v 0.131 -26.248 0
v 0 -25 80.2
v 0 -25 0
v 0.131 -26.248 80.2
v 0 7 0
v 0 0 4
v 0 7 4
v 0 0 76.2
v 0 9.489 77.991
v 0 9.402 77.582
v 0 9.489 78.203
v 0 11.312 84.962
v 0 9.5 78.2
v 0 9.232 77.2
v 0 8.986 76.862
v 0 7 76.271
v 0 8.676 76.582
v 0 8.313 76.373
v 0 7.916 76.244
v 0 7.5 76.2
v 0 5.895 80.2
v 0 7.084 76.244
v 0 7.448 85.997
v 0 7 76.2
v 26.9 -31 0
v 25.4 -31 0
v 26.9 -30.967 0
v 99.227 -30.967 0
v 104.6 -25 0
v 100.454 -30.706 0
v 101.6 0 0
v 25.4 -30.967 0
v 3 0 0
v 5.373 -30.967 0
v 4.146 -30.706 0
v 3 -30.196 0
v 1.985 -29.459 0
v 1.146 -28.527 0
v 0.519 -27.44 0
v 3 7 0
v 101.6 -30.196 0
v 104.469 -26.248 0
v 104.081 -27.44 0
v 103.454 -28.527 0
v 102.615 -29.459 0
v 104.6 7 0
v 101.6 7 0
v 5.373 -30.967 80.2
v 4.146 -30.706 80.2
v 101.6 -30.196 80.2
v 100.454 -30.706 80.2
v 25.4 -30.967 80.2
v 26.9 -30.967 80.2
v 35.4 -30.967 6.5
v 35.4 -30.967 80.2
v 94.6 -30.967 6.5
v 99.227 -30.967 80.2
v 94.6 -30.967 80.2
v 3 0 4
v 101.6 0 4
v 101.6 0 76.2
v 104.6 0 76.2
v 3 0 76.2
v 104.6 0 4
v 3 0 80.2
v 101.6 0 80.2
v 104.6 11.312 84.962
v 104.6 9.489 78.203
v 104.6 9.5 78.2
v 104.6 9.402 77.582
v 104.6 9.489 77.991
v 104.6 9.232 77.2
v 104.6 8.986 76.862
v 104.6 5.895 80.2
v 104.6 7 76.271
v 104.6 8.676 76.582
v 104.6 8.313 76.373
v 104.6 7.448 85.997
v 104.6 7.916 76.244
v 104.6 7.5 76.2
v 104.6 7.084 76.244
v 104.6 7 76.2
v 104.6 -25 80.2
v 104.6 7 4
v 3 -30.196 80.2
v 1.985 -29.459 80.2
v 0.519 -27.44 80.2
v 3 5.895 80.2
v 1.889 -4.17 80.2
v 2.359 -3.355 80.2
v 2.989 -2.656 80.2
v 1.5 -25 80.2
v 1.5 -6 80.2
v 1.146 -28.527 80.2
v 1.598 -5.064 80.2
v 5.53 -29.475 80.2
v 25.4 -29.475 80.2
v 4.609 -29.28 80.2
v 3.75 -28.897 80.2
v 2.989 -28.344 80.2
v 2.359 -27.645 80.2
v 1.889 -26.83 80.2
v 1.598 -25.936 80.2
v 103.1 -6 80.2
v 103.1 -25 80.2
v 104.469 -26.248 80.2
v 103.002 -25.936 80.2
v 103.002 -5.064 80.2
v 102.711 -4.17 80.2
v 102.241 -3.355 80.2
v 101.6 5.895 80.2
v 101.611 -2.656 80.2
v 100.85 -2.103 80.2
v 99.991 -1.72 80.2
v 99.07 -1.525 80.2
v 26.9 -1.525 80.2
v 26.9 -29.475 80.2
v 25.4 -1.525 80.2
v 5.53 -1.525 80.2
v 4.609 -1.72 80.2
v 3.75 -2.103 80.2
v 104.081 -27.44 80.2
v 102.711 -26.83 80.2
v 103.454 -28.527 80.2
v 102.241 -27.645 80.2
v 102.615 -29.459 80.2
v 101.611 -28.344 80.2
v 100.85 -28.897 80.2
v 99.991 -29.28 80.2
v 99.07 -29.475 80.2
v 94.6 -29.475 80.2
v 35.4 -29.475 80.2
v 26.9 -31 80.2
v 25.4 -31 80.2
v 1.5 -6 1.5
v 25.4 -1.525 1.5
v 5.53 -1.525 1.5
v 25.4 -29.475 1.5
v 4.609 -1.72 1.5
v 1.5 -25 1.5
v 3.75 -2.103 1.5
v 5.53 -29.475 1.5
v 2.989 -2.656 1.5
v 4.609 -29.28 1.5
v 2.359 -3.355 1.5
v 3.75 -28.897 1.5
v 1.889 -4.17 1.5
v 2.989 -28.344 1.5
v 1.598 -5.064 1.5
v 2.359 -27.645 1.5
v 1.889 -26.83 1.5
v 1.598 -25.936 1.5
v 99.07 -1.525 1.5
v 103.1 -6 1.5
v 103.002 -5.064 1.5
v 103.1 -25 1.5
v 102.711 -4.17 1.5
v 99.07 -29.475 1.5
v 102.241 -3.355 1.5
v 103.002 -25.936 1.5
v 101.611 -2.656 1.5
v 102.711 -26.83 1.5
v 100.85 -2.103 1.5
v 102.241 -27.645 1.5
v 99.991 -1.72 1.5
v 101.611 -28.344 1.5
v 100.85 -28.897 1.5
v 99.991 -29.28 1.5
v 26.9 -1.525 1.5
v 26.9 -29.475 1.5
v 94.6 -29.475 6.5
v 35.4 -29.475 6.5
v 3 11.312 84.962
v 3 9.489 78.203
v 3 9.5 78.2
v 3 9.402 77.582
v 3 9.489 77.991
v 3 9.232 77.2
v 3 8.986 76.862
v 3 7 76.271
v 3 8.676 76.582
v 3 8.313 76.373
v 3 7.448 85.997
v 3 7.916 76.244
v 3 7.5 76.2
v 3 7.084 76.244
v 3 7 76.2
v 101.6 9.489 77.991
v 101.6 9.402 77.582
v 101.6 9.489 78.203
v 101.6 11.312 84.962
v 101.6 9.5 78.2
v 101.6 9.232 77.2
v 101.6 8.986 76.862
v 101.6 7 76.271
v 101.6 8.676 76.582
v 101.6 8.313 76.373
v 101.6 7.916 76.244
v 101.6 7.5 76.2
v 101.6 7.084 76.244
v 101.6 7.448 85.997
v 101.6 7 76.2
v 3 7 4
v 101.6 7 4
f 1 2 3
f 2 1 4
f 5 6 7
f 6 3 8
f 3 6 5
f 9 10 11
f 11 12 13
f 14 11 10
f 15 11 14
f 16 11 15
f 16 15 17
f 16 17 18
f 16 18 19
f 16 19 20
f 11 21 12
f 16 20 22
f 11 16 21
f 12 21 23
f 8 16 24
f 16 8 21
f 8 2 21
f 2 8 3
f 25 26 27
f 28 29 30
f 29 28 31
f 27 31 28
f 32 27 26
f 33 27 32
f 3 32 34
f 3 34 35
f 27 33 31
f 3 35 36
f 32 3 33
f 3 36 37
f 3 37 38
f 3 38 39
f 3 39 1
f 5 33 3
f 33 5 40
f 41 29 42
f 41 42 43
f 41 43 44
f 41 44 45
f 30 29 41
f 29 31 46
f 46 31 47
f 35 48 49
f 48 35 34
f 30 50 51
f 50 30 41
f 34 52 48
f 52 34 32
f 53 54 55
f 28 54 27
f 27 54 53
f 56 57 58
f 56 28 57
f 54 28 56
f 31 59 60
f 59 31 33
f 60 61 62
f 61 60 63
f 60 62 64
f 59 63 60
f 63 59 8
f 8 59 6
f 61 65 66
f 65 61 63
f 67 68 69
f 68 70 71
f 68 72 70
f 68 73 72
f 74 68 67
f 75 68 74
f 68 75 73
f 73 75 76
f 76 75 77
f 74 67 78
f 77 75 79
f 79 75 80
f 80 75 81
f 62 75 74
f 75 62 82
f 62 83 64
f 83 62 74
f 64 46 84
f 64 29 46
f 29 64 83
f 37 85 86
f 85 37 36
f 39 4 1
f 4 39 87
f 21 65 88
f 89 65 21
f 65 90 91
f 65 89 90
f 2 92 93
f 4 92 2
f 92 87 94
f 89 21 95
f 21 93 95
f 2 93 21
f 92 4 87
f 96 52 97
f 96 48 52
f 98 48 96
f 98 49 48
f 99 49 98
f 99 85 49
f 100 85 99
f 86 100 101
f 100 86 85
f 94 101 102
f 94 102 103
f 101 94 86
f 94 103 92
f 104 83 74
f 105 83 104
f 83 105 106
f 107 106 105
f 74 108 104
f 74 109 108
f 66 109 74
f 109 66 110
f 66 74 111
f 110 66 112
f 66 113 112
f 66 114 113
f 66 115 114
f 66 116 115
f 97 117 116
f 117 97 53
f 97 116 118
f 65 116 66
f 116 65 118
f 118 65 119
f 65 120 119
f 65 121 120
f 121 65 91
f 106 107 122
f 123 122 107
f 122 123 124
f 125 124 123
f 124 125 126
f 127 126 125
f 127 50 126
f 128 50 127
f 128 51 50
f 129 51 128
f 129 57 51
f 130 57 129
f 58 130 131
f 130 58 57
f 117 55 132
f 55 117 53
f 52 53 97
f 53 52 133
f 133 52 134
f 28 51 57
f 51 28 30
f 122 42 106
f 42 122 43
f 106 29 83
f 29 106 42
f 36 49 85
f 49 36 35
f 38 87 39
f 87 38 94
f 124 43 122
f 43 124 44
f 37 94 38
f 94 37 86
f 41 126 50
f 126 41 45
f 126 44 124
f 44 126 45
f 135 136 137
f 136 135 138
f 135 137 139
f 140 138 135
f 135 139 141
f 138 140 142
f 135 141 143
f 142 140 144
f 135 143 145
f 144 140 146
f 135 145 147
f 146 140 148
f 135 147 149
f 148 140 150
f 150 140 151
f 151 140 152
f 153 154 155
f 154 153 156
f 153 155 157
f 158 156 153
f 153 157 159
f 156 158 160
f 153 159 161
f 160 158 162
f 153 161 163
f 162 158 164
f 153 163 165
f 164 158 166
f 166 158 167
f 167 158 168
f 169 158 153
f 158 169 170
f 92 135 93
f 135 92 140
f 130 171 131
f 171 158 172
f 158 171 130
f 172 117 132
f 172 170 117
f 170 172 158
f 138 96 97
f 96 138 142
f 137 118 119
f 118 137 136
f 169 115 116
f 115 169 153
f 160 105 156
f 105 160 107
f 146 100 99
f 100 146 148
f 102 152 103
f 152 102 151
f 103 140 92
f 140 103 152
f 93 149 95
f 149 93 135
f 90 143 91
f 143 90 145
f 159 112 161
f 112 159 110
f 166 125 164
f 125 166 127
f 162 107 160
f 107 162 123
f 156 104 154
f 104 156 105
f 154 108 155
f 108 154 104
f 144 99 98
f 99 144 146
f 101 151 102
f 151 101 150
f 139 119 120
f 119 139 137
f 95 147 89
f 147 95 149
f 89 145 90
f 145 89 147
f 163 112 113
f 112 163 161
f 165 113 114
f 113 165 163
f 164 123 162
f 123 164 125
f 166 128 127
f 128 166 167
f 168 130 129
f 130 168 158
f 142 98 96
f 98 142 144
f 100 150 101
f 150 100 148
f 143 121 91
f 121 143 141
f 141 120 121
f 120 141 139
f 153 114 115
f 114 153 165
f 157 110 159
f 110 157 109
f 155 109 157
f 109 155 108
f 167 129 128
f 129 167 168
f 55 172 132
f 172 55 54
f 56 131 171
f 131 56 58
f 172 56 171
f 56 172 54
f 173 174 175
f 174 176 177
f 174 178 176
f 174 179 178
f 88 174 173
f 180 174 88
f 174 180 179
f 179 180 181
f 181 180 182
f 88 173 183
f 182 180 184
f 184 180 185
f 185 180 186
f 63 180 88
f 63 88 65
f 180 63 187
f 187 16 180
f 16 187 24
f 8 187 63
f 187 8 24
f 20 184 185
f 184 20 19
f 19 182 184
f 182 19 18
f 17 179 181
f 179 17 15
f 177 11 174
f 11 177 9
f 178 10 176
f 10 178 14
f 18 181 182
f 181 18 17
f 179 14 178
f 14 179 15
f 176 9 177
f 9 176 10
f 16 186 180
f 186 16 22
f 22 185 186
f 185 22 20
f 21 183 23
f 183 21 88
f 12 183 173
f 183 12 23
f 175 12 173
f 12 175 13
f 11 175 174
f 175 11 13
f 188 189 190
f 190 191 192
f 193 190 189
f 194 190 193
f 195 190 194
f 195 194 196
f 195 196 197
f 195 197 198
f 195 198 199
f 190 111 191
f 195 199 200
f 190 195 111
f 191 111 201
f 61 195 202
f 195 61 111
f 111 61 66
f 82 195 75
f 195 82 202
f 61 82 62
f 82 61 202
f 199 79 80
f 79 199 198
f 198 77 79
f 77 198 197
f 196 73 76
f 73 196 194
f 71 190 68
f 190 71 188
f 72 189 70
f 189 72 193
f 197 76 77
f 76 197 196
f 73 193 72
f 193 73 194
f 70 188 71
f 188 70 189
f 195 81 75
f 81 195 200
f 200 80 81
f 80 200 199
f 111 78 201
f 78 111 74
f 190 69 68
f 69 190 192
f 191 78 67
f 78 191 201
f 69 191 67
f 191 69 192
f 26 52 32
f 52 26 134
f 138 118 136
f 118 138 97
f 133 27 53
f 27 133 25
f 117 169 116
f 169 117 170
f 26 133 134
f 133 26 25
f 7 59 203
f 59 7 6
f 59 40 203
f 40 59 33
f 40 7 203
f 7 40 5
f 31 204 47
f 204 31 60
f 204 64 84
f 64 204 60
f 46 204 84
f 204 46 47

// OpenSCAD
// ----------------------------------------------------------
//         Pegboard box for DT-830 Digital Multimeter
//                 by Jan-Willem
//
//                   08.01.2017  
//
//         License CC BY-NC-SA 3.0
// ----------------------------------------------------------


//   07.01.2017 first version printed
//   08.01.2017 release on thingiverse

//    infill  = 50 %
//    shell = 0.8    (2 x 0.4)
//    Support type = Everywhere

//    Cura and Ultimaker original


$fn=30;
inch = 25.4; 

wall = 1.5;   // nice fit for 2 x double wall 0.4 print head 

// dimension of the box in inch units (peg board units)
Xdim = 4;    // width
Ydim = 2;    // depth
Zdim = 3;    // height of box

// adjust depth (not a multiple of inch sizes)
YYdim = 28 + 2*wall;    // internal size 28 mm (for multimeter)

XXdim = Xdim*inch;    // width = standard inch size

// lower pin dimensions
pegx = 3;
pegy = 7;   // depth of pin
pegz = 4;



// make the pegboard box
// ---------------------
//           centre box around pegs

Xwindow = (XXdim-inch)+pegx-10-10;   // 10 = flap size

difference()
 { translate([-(XXdim-Xdim*inch)/2,-YYdim,0]) EmptyBox(XXdim+pegx,YYdim,Zdim*inch+pegz,wall,6);
    translate([10+inch,-YYdim-2,wall+5
     ]) cube([Xwindow,5,100]);     
 }   

// add wall between voltmeter and probe area
 translate([inch,-YYdim,0]) cube([wall,YYdim,Zdim*inch+pegz]);


LowerPeg(0,0,0);
LowerPeg(Xdim*inch,0,0);

UpperPeg(0,0,Zdim*inch);
UpperPeg(Xdim*inch,0,Zdim*inch);




// Lower peg pin
module LowerPeg(xx,yy,zz)
{ translate([xx,yy-wall,zz]) cube([pegx, pegy+wall, pegz]);
}


// Upper curved peg pin
module UpperPeg(xx,yy,zz)
{ translate([xx,yy-wall,zz]) cube([pegx, pegy+wall,pegz]);
translate([xx,yy-wall+pegy+pegz/2,zz+pegz/2]) rotate([0,90,0]) cylinder(r=pegz/2, h=pegx);
translate([xx,yy-wall+pegy+pegz,zz+pegz/2]) rotate([75,0,0]) cube([pegx,pegy,pegz]);
}




// ------------------------------------------------------
// EmptyBox, JWW, x,y,z,wall  r=riadius of rounding
// ------------------------------------------------------
module EmptyBox(xx,yy,zz,wall,rr)
{ difference()
   { HalfRoundedBox(xx,yy,zz,rr);                                 
     translate([wall,wall,wall]) RoundedBox(xx-2*wall,yy-2*wall,zz,rr-wall);
   }
}


// ------------------------------------------------------
// Rounded box, JWW, x,y,z  r=riadius of rounding
// ------------------------------------------------------
module RoundedBox(xx,yy,zz,rr)
{ hull()
	{translate([rr,rr,0])       cylinder(r=rr,h=zz);
	 translate([rr,yy-rr,0])    cylinder(r=rr,h=zz);
	 translate([xx-rr,rr,0])    cylinder(r=rr,h=zz);
	 translate([xx-rr,yy-rr,0]) cylinder(r=rr,h=zz);
     }
}


module HalfRoundedBox(xx,yy,zz,rr)
{ hull()
	{translate([rr,rr,0])       cylinder(r=rr,h=zz);
	 translate([0,yy-1,0])      cube([1,1,zz]);
	 translate([xx-rr,rr,0])    cylinder(r=rr,h=zz);
	 translate([xx-1,yy-1,0])   cube([1,1,zz]);
     }
}
